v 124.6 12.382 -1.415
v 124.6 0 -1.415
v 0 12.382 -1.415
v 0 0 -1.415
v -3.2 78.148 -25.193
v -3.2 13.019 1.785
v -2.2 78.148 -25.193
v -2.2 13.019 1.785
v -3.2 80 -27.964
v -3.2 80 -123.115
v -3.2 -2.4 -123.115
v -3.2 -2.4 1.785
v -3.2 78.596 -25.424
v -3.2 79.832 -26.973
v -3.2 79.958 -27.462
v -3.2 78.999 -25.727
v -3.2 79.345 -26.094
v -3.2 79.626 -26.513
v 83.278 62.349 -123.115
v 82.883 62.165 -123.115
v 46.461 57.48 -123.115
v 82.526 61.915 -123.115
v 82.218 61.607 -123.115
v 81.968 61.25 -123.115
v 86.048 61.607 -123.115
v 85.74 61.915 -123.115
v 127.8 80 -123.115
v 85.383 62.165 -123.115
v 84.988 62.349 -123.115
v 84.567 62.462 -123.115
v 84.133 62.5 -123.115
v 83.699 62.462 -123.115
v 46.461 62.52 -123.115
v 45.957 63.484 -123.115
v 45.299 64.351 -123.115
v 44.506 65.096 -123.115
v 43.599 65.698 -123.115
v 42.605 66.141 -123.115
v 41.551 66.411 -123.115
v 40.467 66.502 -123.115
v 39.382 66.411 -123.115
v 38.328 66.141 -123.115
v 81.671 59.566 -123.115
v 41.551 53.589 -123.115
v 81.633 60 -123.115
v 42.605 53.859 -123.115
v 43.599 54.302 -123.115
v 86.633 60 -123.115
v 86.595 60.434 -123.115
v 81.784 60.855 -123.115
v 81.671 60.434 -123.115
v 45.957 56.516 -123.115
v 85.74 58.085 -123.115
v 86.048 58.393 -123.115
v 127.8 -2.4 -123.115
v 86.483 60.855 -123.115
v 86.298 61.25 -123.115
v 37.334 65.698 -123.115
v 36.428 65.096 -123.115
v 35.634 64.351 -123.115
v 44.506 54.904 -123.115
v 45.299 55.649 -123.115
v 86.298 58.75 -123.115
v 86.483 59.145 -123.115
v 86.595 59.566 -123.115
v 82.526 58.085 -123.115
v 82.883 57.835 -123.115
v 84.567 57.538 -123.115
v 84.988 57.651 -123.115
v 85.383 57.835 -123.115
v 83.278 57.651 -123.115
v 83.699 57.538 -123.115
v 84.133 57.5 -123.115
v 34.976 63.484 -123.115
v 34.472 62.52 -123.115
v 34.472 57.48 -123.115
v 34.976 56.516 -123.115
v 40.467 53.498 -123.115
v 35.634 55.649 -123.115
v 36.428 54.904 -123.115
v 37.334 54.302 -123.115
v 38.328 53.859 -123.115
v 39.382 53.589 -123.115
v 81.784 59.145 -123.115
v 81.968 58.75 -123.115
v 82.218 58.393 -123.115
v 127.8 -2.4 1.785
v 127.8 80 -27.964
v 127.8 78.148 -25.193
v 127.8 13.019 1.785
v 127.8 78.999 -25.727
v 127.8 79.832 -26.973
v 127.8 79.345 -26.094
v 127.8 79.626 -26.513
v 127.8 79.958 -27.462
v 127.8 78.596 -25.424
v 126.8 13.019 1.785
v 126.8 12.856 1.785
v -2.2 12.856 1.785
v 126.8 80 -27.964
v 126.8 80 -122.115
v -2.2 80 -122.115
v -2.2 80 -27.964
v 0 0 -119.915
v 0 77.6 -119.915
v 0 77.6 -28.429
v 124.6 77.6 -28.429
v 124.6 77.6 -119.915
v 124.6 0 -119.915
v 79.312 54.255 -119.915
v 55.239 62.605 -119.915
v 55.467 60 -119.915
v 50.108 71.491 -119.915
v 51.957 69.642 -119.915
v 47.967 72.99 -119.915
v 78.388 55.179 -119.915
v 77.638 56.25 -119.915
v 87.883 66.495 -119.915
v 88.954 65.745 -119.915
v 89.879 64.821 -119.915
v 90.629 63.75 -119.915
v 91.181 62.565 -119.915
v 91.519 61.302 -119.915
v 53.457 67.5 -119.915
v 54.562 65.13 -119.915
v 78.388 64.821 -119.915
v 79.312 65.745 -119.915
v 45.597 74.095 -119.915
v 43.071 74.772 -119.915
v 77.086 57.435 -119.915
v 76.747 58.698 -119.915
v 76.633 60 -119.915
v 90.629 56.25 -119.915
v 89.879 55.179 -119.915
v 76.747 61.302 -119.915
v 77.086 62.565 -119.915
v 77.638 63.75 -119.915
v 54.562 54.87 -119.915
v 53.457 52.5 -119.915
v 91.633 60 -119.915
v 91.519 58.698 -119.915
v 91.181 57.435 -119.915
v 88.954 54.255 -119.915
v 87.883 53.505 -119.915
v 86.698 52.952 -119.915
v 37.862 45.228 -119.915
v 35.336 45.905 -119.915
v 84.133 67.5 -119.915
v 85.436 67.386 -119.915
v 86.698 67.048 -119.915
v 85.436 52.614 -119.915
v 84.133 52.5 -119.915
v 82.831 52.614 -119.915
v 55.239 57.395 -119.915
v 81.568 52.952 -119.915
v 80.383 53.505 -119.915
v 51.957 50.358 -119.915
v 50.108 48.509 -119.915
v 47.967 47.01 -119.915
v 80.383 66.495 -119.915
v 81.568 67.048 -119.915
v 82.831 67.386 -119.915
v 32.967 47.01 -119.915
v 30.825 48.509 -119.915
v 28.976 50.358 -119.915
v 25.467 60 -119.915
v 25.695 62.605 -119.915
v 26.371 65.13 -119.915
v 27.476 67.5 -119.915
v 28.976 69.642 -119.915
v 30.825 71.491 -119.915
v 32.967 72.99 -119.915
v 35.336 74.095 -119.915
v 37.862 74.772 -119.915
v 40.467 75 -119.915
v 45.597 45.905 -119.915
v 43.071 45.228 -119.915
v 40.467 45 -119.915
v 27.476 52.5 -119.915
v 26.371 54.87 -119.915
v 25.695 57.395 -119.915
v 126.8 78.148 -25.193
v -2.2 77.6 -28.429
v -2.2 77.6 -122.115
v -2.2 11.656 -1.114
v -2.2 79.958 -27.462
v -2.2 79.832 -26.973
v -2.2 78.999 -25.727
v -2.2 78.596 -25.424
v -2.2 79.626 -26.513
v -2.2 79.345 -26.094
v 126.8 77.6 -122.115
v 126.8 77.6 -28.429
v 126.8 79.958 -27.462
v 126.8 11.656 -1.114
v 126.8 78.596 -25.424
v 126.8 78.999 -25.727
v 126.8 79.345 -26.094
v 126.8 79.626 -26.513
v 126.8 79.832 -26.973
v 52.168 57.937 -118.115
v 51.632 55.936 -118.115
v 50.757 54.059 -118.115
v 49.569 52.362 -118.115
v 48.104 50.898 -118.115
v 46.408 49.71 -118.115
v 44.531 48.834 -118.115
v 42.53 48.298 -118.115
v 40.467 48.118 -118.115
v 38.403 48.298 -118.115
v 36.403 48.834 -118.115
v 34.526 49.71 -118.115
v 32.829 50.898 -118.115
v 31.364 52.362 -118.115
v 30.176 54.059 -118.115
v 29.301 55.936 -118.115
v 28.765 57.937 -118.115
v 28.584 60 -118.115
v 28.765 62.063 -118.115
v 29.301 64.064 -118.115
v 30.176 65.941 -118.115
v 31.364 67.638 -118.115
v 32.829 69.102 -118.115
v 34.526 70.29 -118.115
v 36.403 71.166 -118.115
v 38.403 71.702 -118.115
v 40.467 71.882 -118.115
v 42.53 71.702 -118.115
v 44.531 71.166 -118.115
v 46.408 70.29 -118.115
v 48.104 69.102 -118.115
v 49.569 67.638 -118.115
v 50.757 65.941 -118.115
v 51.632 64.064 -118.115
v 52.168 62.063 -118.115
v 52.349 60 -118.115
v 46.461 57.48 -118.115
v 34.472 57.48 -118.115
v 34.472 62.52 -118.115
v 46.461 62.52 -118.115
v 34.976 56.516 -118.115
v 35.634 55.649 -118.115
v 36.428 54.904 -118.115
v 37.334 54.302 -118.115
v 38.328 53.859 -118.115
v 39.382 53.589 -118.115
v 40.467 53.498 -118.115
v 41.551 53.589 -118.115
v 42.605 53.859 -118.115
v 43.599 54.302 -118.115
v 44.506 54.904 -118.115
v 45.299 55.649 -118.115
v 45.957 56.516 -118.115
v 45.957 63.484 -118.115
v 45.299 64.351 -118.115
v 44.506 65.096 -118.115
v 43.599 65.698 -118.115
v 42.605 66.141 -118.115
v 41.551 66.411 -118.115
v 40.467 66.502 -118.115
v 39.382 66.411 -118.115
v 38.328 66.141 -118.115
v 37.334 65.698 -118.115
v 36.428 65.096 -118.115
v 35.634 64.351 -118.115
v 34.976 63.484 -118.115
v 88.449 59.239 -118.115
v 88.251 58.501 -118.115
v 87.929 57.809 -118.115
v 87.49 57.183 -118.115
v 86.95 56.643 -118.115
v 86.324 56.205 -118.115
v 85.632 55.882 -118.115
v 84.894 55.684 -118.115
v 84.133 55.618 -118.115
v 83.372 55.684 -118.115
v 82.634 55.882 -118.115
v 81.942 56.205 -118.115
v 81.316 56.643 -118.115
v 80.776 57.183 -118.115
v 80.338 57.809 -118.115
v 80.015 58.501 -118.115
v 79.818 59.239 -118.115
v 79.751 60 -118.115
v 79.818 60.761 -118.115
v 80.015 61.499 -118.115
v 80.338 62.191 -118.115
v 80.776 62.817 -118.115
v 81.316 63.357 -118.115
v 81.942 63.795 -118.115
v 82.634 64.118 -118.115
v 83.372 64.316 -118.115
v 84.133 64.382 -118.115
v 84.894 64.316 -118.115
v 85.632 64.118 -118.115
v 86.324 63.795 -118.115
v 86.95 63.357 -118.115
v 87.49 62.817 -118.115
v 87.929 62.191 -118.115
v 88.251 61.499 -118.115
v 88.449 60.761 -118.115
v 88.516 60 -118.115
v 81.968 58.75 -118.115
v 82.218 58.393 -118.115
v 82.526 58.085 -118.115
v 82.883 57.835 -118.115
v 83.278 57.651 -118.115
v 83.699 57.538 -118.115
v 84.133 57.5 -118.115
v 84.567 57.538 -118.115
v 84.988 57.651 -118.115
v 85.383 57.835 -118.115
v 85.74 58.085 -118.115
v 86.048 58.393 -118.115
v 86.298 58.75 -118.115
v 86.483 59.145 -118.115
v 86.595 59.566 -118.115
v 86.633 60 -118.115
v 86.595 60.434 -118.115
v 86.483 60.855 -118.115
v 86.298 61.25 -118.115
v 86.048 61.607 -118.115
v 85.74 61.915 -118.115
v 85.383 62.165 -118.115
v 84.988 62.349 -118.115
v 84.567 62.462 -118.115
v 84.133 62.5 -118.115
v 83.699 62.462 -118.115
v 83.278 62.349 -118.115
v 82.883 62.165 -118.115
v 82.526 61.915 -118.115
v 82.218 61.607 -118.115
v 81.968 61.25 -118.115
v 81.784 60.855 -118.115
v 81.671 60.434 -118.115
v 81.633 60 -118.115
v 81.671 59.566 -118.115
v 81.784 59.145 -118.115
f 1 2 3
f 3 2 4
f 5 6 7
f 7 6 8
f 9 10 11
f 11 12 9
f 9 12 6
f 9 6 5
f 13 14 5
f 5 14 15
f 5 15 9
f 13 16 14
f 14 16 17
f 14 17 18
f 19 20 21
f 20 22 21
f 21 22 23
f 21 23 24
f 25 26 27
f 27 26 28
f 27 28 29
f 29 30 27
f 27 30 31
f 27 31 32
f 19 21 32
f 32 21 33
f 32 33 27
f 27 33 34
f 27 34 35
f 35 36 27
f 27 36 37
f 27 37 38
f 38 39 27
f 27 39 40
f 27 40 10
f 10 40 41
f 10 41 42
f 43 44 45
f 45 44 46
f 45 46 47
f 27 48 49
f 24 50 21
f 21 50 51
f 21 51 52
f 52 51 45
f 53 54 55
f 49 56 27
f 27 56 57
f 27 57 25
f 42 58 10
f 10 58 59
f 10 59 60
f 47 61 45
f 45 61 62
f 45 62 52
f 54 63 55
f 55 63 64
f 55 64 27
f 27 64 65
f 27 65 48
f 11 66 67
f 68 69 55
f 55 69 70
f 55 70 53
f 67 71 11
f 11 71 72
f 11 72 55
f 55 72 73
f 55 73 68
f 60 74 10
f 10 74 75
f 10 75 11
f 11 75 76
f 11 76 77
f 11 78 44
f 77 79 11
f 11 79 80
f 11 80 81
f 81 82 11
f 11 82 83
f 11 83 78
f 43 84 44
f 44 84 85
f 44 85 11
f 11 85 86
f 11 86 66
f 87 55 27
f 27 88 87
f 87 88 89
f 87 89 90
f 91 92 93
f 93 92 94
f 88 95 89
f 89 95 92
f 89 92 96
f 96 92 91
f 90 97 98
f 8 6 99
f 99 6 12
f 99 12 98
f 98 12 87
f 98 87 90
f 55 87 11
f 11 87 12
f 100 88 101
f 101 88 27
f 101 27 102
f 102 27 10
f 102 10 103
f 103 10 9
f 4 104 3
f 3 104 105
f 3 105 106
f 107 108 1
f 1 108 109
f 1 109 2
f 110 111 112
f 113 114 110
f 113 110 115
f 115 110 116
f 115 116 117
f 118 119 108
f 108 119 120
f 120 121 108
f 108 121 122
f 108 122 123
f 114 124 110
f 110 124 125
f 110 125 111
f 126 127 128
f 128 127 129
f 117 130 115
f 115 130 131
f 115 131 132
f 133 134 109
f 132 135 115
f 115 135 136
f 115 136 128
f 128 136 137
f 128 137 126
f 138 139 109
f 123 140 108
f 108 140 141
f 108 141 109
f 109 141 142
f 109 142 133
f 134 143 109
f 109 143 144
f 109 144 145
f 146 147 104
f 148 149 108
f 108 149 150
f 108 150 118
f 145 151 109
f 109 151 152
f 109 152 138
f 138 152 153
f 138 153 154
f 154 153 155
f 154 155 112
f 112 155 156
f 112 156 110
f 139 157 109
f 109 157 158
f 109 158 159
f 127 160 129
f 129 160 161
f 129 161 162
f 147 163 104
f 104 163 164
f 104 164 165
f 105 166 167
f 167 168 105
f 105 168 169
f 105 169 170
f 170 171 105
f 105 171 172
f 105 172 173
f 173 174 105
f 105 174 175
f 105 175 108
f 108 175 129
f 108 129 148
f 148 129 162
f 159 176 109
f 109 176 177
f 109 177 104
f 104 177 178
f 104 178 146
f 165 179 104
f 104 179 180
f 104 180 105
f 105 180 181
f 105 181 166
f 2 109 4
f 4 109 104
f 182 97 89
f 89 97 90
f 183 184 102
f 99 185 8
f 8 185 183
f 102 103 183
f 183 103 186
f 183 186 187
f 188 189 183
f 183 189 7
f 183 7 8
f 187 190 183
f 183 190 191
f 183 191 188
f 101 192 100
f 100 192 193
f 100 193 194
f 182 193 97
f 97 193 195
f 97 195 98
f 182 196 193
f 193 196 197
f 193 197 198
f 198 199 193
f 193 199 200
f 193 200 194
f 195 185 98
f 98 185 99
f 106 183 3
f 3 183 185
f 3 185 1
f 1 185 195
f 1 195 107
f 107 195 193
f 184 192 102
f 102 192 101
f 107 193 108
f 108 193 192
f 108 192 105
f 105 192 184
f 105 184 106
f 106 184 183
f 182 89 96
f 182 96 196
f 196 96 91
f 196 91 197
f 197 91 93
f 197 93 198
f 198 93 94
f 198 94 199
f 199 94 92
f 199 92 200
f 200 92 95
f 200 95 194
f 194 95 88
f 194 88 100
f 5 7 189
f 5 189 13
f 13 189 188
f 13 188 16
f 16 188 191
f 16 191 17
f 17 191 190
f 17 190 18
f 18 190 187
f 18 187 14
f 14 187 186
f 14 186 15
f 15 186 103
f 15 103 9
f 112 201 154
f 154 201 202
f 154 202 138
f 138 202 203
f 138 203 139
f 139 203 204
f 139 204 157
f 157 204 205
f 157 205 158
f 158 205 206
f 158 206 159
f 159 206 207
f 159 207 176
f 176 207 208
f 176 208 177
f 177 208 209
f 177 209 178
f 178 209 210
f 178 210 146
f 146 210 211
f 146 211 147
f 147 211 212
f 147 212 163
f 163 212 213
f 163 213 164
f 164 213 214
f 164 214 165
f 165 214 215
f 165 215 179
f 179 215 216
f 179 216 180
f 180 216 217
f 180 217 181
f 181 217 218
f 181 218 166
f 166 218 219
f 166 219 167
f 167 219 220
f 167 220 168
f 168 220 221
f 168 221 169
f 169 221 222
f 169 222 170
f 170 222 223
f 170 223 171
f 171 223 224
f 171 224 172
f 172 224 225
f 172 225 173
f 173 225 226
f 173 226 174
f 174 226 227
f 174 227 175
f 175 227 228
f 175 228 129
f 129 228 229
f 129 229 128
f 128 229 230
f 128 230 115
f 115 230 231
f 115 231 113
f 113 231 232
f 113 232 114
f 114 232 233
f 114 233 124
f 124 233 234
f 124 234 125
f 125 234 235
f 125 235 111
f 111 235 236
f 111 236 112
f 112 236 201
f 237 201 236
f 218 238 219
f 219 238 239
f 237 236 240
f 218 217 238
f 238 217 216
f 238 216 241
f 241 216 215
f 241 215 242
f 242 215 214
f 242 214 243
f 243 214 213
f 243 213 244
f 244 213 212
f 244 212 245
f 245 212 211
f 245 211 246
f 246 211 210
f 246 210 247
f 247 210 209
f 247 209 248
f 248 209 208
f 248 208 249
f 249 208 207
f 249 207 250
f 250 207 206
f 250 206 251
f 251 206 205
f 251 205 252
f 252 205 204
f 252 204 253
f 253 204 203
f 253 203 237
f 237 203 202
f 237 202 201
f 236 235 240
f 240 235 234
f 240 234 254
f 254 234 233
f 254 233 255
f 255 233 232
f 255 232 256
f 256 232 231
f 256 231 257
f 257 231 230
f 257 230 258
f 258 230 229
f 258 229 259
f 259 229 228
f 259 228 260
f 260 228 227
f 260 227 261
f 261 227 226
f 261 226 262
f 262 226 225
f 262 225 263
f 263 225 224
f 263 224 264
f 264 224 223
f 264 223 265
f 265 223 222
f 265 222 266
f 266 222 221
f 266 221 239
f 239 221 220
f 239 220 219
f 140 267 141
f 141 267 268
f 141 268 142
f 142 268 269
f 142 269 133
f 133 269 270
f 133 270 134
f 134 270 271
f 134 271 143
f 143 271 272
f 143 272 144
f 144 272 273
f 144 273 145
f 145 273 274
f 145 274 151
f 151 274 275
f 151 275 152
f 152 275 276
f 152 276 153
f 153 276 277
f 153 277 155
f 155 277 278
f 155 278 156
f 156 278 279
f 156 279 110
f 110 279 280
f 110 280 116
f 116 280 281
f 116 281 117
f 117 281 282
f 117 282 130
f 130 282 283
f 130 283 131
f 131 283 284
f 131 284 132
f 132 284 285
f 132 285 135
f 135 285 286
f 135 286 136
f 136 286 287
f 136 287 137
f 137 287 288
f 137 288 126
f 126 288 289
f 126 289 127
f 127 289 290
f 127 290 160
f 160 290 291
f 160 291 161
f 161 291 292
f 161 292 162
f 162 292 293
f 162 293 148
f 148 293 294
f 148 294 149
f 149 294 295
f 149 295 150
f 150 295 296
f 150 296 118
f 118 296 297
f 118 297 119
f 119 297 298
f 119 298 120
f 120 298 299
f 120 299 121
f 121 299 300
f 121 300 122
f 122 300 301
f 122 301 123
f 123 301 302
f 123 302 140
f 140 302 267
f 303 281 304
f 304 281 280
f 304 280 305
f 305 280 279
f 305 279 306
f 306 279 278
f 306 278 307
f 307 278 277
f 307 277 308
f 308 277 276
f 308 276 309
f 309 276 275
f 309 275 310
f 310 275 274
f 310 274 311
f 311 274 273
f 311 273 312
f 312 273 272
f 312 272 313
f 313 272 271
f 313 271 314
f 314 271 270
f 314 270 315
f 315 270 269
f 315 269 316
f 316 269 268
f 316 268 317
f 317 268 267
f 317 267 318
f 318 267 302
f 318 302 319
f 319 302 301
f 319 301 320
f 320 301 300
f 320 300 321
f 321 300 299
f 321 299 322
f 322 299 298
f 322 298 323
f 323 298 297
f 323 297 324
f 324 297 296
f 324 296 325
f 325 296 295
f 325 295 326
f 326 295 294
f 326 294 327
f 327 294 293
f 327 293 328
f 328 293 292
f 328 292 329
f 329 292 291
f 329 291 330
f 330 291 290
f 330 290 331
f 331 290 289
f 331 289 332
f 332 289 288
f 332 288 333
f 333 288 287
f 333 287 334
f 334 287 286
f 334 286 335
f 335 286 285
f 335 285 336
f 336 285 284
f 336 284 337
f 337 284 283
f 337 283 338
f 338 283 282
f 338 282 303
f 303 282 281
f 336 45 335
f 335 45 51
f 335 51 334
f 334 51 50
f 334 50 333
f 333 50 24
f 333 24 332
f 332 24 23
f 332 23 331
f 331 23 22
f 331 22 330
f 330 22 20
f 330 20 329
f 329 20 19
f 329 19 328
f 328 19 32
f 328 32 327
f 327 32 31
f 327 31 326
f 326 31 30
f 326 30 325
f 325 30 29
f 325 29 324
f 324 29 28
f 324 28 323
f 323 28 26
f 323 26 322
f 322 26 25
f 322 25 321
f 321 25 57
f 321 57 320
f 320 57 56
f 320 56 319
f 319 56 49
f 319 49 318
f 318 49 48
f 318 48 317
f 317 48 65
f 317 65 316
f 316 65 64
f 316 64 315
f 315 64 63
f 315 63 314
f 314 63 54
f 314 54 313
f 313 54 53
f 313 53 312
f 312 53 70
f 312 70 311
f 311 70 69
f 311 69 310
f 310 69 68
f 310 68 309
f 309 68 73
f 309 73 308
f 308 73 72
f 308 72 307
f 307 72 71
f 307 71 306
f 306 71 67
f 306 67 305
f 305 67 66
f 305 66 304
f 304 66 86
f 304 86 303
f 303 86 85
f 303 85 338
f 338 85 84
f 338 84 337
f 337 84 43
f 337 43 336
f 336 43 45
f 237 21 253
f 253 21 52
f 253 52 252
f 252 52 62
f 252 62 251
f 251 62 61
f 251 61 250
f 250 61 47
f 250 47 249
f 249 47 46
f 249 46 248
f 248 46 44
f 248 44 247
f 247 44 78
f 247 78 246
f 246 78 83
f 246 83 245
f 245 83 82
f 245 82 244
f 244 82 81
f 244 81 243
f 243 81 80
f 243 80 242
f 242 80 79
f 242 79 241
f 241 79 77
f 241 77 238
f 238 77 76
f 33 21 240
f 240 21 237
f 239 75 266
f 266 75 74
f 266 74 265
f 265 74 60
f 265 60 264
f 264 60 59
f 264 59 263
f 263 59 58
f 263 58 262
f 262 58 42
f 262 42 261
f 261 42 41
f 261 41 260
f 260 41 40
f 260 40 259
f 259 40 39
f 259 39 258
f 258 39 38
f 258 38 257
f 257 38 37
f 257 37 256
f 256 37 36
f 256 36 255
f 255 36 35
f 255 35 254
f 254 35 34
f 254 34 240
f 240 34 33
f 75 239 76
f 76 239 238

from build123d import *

# Parameters (mm, degrees)
SKETCH1_W                     = 131
SKETCH1_H                     = 124.9
SKETCH1_W_2                   = 124.6
SKETCH1_H_2                   = 118.5
BOSS_EXTRUDE1_DEPTH           = 2.4
SKETCH1_3_W                   = 131
SKETCH1_3_H                   = 124.9
SKETCH1_3_W_2                 = 124.6
SKETCH1_3_H_2                 = 118.5
BOSS_EXTRUDE2_DEPTH           = 80
CUT_EXTRUDE1_DEPTH            = 197.769729517
CUT_EXTRUDE2_REACH            = 199.577
SKETCH3_W                     = 124.6
SKETCH3_H                     = 3.362002976
SKETCH4_W                     = 129
SKETCH4_H                     = 72.65
CUT_EXTRUDE3_DEPTH            = 3.2
SKETCH5_W                     = 129
SKETCH5_H                     = 96.155451154
CUT_EXTRUDE4_DEPTH            = 2.4
FILLET1_R                     = 3
SKETCH7_R                     = 15
BOSS_EXTRUDE3_DEPTH           = 1.8
BOSS_EXTRUDE3_DRAFT           = 60
SKETCH7_R_2                   = 7.5
BOSS_EXTRUDE3_PROFILE_2_DEPTH = 1.8
BOSS_EXTRUDE3_PROFILE_2_DRAFT = 60
SKETCH6_W                     = 11.9888
SKETCH6_H                     = 2.519598063
SKETCH6_R                     = 2.5
CUT_EXTRUDE6_DEPTH            = 196.787767749


with BuildPart() as part:
    # Sketch1 → Boss-Extrude1 (new body)
    # profile 1 of 2: a face of its own
    with BuildSketch(Plane(origin=(0, 0, 0), x_dir=(1, 0, 0), z_dir=(0, 1, 0))):
        with Locations((62.3, 60.66509434)):
            Rectangle(SKETCH1_W, SKETCH1_H)
        with Locations((62.3, 60.66509434)):
            Rectangle(SKETCH1_W_2, SKETCH1_H_2, mode=Mode.SUBTRACT)
    # profile 2 of 2: a face of its own
    with BuildSketch(Plane(origin=(0, 0, 0), x_dir=(1, 0, 0), z_dir=(0, 1, 0))):
        with Locations((62.3, 60.66509434)):
            Rectangle(SKETCH1_W_2, SKETCH1_H_2)
    extrude(amount=-BOSS_EXTRUDE1_DEPTH)

    # Sketch1<3> → Boss-Extrude2 (add)
    with BuildSketch(Plane(origin=(0, 0, 0), x_dir=(1, 0, 0), z_dir=(0, 1, 0))):
        with Locations((62.3, 60.66509434)):
            Rectangle(SKETCH1_3_W, SKETCH1_3_H)
        with Locations((62.3, 60.66509434)):
            Rectangle(SKETCH1_3_W_2, SKETCH1_3_H_2, mode=Mode.SUBTRACT)
    extrude(amount=BOSS_EXTRUDE2_DEPTH)

    # Sketch2 → Cut-Extrude1 (cut, through all)
    with BuildSketch(Plane(origin=(127.8, 0, 0), x_dir=(0, 0, -1), z_dir=(1, 0, 0))):
        Polygon((-1.78490566, 13.018733893), (25.959643186, 80), (-1.78490566, 80), align=None)
    extrude(amount=-CUT_EXTRUDE1_DEPTH, mode=Mode.SUBTRACT)

    # Sketch3 → Cut-Extrude2 (cut, up to next)
    with BuildSketch(Plane(origin=(0, 2.537608886, 6.126329787), x_dir=(1, 0, 0), z_dir=(0, 0.38268343236508395, 0.9238795325112892)), mode=Mode.PRIVATE) as cut_extrude2_sk1:
        with Locations((62.3, 18.025689446)):
            Rectangle(SKETCH3_W, SKETCH3_H)
    cut_extrude2_tool1 = extrude(cut_extrude2_sk1.sketch, amount=-CUT_EXTRUDE2_REACH, mode=Mode.PRIVATE) & part.part
    add(cut_extrude2_tool1.solids().sort_by_distance((62.3, 19.191174, -0.771803))[0], mode=Mode.SUBTRACT)

    # Sketch4 → Cut-Extrude3 (cut)
    with BuildSketch(Plane(origin=(0, 2.537608886, 6.126329787), x_dir=(1, 0, 0), z_dir=(0, 0.38268343236508423, 0.9238795325112892))):
        with Locations((62.3, 47.519687958)):
            Rectangle(SKETCH4_W, SKETCH4_H)
    extrude(amount=-CUT_EXTRUDE3_DEPTH, mode=Mode.SUBTRACT)

    # Sketch5 → Cut-Extrude4 (cut)
    with BuildSketch(Plane(origin=(0, 80, 0), x_dir=(1, 0, 0), z_dir=(0, 1, 0))):
        with Locations((62.3, 74.037368763)):
            Rectangle(SKETCH5_W, SKETCH5_H)
    extrude(amount=-CUT_EXTRUDE4_DEPTH, mode=Mode.SUBTRACT)

    # Fillet1
    fillet1_edges = [part.edges().sort_by_distance(p)[0] for p in [
        (-2.7, 80, -25.959643186),
        (127.3, 80, -25.959643186),
    ]]
    fillet(fillet1_edges, radius=FILLET1_R)


with BuildPart() as boss_extrude3_tool:
    # Sketch7 → Boss-Extrude3 (with draft: the straight prism first)
    with BuildSketch(Plane.XY.offset(-119.91509434)):
        with Locations((40.466666667, 60)):
            Circle(SKETCH7_R)
    extrude(amount=BOSS_EXTRUDE3_DEPTH)
    # Boss-Extrude3: the draft: its side faces are tilted about the plane it starts from
    boss_extrude3_sides = [boss_extrude3_tool.faces().sort_by_distance(p)[0] for p in [
        (25.466666667, 60, -119.01509434),
    ]]
    draft(boss_extrude3_sides, Plane.XY.offset(-119.91509434), BOSS_EXTRUDE3_DRAFT)


with BuildPart() as part_1:
    add(part.part)

    # Boss-Extrude3: add boss_extrude3_tool
    add(boss_extrude3_tool.part)


with BuildPart() as boss_extrude3_profile_2_tool:
    # Sketch7 → Boss-Extrude3 profile 2 (with draft: the straight prism first)
    with BuildSketch(Plane.XY.offset(-119.91509434)):
        with Locations((84.133333333, 60)):
            Circle(SKETCH7_R_2)
    extrude(amount=BOSS_EXTRUDE3_PROFILE_2_DEPTH)
    # Boss-Extrude3 profile 2: the draft: its side faces are tilted about the plane it starts from
    boss_extrude3_profile_2_sides = [boss_extrude3_profile_2_tool.faces().sort_by_distance(p)[0] for p in [
        (76.633333333, 60, -119.01509434),
    ]]
    draft(boss_extrude3_profile_2_sides, Plane.XY.offset(-119.91509434), BOSS_EXTRUDE3_PROFILE_2_DRAFT)


with BuildPart() as part_2:
    add(part_1.part)

    # Boss-Extrude3 profile 2: add boss_extrude3_profile_2_tool
    add(boss_extrude3_profile_2_tool.part)

    # Sketch6 → Cut-Extrude6 (cut, through all)
    with BuildSketch(Plane(origin=(0, 0, -123.11509434), x_dir=(-1, 0, 0), z_dir=(0, 0, -1))):
        with BuildLine():
            Line((-34.472266667, 57.480401937), (-46.461066667, 57.480401937))
            ThreePointArc((-46.461066667, 57.480401937), (-40.466666667, 53.4976), (-34.472266667, 57.480401937))
        make_face()
        with Locations((-40.466666667, 58.740200969)):
            Rectangle(SKETCH6_W, SKETCH6_H)
        with Locations((-40.466666667, 61.259799032)):
            Rectangle(SKETCH6_W, SKETCH6_H)
        with BuildLine():
            ThreePointArc((-34.472266667, 62.519598063), (-40.466666667, 66.5024), (-46.461066667, 62.519598063))
            Line((-46.461066667, 62.519598063), (-34.472266667, 62.519598063))
        make_face()
        with Locations((-84.133333333, 60)):
            Circle(SKETCH6_R)
    extrude(amount=-CUT_EXTRUDE6_DEPTH, mode=Mode.SUBTRACT)


solid = part_2.part
